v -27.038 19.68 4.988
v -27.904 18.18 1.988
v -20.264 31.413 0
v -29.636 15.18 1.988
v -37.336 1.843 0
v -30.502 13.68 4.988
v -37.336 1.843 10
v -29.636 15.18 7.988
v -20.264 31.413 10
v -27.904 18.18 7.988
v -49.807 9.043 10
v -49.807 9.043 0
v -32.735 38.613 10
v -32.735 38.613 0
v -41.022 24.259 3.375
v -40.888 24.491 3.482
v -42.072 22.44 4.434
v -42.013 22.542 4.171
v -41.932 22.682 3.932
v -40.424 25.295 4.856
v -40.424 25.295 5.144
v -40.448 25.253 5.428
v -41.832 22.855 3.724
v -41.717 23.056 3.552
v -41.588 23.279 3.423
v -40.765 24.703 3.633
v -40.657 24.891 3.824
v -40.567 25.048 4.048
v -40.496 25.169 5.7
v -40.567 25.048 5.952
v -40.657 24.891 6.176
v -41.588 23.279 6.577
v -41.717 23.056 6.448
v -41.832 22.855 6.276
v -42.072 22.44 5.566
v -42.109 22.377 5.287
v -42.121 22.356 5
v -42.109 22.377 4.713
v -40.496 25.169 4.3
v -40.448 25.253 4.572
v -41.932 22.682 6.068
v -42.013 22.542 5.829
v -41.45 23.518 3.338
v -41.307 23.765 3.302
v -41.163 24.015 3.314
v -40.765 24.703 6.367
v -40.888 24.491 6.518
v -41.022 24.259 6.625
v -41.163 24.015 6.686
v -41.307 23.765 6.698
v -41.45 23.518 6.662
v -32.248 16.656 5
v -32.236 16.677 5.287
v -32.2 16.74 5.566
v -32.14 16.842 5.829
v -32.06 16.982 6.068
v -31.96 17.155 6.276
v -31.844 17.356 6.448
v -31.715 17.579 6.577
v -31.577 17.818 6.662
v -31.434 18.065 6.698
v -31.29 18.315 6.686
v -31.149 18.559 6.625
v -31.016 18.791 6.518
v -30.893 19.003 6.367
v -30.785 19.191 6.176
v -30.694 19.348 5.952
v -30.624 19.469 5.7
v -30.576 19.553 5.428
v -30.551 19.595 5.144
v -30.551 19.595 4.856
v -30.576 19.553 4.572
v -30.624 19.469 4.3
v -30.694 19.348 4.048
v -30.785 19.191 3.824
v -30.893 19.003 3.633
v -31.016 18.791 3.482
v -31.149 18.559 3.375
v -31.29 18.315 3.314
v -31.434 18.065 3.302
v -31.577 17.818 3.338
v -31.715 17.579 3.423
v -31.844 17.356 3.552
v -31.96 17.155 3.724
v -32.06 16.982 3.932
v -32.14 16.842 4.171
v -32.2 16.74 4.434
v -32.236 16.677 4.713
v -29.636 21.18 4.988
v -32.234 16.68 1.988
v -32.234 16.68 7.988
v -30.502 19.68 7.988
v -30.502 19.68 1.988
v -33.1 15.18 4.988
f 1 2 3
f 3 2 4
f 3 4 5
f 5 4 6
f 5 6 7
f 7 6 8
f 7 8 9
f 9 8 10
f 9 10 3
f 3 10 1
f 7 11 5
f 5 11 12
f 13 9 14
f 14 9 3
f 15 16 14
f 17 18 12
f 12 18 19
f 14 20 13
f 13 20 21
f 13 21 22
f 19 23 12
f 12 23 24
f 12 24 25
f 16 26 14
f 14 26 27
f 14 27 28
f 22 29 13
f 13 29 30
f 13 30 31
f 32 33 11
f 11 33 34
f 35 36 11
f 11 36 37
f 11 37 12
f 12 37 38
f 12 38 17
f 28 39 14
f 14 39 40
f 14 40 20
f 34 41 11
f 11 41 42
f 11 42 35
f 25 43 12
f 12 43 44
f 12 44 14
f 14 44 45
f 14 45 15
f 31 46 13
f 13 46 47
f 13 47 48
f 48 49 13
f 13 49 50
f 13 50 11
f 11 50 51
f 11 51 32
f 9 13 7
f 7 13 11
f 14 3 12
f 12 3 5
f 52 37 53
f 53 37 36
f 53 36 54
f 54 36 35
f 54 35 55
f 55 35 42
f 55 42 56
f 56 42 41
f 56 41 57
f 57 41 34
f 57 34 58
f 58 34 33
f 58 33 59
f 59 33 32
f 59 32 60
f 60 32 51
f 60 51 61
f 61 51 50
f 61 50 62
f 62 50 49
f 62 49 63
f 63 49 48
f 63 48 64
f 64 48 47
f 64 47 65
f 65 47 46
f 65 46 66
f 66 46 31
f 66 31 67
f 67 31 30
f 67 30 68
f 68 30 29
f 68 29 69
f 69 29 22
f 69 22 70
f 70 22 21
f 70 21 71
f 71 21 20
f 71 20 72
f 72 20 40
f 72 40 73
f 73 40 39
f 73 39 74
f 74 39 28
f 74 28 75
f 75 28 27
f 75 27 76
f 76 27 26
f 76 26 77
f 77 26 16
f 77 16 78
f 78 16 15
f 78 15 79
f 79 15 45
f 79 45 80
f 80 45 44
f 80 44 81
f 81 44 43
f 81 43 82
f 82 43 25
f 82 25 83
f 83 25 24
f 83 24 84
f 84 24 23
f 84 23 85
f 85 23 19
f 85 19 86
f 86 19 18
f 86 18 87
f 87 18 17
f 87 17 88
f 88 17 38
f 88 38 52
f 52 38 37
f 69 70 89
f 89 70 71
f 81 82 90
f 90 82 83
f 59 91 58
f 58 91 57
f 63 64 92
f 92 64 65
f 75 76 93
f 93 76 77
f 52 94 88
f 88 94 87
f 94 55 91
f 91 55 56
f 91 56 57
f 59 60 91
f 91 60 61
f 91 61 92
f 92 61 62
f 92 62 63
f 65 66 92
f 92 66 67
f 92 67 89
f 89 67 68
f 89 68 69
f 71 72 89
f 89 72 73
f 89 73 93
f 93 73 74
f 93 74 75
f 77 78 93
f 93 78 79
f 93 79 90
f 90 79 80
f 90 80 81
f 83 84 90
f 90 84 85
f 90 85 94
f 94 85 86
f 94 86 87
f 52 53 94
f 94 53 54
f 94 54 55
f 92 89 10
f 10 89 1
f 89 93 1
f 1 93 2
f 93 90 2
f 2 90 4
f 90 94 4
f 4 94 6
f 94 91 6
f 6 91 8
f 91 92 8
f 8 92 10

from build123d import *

# Parameters (mm, degrees)
RESSALTO_EXTRUS_O1_DEPTH = 10
ESBO_O3_R                = 1.7
CORTE_EXTRUS_O1_DEPTH    = 33.009811874
CORTE_EXTRUS_O3_START    = -11.4
ESBO_O3_4_R              = 1.7
CORTE_EXTRUS_O3_DEPTH    = 3


with BuildPart() as part:
    # Esboço2 → Ressalto-extrusão1 (new body)
    with BuildSketch(Plane.XY):
        Polygon((-49.807026949, 9.042797905), (-32.734806181, 38.612751673), (-20.264040367, 31.412751673), (-37.336261135, 1.842797905), align=None)
    extrude(amount=RESSALTO_EXTRUS_O1_DEPTH)

    # Esboço3 → Corte-extrusão1 (cut, through all)
    with BuildSketch(Plane(origin=(-41.270916565, 23.827774789, 0), x_dir=(0, 0, 1), z_dir=(-0.8660254037844386, 0.5000000000000003, 0))):
        with Locations(Location((5, 0, 0), (0, 0, 270))):
            Circle(ESBO_O3_R)
    extrude(amount=-CORTE_EXTRUS_O1_DEPTH, mode=Mode.SUBTRACT)

    # Esboço3<4> → Corte-extrusão3 (cut)
    with BuildSketch(Plane(origin=(-41.270916565, 23.827774789, 0), x_dir=(0, 0, 1), z_dir=(-0.8660254037844386, 0.5000000000000003, 0)).offset(CORTE_EXTRUS_O3_START)):
        Polygon((4.988193566, 3.524626071), (1.988193566, 1.792575264), (1.988193566, -1.671526352), (4.988193566, -3.403577159), (7.988193566, -1.671526352), (7.988193566, 1.792575264), align=None)
        with Locations(Location((5, 0, 0), (0, 0, 270))):
            Circle(ESBO_O3_4_R, mode=Mode.SUBTRACT)
    extrude(amount=-CORTE_EXTRUS_O3_DEPTH, mode=Mode.SUBTRACT)


solid = part.part
